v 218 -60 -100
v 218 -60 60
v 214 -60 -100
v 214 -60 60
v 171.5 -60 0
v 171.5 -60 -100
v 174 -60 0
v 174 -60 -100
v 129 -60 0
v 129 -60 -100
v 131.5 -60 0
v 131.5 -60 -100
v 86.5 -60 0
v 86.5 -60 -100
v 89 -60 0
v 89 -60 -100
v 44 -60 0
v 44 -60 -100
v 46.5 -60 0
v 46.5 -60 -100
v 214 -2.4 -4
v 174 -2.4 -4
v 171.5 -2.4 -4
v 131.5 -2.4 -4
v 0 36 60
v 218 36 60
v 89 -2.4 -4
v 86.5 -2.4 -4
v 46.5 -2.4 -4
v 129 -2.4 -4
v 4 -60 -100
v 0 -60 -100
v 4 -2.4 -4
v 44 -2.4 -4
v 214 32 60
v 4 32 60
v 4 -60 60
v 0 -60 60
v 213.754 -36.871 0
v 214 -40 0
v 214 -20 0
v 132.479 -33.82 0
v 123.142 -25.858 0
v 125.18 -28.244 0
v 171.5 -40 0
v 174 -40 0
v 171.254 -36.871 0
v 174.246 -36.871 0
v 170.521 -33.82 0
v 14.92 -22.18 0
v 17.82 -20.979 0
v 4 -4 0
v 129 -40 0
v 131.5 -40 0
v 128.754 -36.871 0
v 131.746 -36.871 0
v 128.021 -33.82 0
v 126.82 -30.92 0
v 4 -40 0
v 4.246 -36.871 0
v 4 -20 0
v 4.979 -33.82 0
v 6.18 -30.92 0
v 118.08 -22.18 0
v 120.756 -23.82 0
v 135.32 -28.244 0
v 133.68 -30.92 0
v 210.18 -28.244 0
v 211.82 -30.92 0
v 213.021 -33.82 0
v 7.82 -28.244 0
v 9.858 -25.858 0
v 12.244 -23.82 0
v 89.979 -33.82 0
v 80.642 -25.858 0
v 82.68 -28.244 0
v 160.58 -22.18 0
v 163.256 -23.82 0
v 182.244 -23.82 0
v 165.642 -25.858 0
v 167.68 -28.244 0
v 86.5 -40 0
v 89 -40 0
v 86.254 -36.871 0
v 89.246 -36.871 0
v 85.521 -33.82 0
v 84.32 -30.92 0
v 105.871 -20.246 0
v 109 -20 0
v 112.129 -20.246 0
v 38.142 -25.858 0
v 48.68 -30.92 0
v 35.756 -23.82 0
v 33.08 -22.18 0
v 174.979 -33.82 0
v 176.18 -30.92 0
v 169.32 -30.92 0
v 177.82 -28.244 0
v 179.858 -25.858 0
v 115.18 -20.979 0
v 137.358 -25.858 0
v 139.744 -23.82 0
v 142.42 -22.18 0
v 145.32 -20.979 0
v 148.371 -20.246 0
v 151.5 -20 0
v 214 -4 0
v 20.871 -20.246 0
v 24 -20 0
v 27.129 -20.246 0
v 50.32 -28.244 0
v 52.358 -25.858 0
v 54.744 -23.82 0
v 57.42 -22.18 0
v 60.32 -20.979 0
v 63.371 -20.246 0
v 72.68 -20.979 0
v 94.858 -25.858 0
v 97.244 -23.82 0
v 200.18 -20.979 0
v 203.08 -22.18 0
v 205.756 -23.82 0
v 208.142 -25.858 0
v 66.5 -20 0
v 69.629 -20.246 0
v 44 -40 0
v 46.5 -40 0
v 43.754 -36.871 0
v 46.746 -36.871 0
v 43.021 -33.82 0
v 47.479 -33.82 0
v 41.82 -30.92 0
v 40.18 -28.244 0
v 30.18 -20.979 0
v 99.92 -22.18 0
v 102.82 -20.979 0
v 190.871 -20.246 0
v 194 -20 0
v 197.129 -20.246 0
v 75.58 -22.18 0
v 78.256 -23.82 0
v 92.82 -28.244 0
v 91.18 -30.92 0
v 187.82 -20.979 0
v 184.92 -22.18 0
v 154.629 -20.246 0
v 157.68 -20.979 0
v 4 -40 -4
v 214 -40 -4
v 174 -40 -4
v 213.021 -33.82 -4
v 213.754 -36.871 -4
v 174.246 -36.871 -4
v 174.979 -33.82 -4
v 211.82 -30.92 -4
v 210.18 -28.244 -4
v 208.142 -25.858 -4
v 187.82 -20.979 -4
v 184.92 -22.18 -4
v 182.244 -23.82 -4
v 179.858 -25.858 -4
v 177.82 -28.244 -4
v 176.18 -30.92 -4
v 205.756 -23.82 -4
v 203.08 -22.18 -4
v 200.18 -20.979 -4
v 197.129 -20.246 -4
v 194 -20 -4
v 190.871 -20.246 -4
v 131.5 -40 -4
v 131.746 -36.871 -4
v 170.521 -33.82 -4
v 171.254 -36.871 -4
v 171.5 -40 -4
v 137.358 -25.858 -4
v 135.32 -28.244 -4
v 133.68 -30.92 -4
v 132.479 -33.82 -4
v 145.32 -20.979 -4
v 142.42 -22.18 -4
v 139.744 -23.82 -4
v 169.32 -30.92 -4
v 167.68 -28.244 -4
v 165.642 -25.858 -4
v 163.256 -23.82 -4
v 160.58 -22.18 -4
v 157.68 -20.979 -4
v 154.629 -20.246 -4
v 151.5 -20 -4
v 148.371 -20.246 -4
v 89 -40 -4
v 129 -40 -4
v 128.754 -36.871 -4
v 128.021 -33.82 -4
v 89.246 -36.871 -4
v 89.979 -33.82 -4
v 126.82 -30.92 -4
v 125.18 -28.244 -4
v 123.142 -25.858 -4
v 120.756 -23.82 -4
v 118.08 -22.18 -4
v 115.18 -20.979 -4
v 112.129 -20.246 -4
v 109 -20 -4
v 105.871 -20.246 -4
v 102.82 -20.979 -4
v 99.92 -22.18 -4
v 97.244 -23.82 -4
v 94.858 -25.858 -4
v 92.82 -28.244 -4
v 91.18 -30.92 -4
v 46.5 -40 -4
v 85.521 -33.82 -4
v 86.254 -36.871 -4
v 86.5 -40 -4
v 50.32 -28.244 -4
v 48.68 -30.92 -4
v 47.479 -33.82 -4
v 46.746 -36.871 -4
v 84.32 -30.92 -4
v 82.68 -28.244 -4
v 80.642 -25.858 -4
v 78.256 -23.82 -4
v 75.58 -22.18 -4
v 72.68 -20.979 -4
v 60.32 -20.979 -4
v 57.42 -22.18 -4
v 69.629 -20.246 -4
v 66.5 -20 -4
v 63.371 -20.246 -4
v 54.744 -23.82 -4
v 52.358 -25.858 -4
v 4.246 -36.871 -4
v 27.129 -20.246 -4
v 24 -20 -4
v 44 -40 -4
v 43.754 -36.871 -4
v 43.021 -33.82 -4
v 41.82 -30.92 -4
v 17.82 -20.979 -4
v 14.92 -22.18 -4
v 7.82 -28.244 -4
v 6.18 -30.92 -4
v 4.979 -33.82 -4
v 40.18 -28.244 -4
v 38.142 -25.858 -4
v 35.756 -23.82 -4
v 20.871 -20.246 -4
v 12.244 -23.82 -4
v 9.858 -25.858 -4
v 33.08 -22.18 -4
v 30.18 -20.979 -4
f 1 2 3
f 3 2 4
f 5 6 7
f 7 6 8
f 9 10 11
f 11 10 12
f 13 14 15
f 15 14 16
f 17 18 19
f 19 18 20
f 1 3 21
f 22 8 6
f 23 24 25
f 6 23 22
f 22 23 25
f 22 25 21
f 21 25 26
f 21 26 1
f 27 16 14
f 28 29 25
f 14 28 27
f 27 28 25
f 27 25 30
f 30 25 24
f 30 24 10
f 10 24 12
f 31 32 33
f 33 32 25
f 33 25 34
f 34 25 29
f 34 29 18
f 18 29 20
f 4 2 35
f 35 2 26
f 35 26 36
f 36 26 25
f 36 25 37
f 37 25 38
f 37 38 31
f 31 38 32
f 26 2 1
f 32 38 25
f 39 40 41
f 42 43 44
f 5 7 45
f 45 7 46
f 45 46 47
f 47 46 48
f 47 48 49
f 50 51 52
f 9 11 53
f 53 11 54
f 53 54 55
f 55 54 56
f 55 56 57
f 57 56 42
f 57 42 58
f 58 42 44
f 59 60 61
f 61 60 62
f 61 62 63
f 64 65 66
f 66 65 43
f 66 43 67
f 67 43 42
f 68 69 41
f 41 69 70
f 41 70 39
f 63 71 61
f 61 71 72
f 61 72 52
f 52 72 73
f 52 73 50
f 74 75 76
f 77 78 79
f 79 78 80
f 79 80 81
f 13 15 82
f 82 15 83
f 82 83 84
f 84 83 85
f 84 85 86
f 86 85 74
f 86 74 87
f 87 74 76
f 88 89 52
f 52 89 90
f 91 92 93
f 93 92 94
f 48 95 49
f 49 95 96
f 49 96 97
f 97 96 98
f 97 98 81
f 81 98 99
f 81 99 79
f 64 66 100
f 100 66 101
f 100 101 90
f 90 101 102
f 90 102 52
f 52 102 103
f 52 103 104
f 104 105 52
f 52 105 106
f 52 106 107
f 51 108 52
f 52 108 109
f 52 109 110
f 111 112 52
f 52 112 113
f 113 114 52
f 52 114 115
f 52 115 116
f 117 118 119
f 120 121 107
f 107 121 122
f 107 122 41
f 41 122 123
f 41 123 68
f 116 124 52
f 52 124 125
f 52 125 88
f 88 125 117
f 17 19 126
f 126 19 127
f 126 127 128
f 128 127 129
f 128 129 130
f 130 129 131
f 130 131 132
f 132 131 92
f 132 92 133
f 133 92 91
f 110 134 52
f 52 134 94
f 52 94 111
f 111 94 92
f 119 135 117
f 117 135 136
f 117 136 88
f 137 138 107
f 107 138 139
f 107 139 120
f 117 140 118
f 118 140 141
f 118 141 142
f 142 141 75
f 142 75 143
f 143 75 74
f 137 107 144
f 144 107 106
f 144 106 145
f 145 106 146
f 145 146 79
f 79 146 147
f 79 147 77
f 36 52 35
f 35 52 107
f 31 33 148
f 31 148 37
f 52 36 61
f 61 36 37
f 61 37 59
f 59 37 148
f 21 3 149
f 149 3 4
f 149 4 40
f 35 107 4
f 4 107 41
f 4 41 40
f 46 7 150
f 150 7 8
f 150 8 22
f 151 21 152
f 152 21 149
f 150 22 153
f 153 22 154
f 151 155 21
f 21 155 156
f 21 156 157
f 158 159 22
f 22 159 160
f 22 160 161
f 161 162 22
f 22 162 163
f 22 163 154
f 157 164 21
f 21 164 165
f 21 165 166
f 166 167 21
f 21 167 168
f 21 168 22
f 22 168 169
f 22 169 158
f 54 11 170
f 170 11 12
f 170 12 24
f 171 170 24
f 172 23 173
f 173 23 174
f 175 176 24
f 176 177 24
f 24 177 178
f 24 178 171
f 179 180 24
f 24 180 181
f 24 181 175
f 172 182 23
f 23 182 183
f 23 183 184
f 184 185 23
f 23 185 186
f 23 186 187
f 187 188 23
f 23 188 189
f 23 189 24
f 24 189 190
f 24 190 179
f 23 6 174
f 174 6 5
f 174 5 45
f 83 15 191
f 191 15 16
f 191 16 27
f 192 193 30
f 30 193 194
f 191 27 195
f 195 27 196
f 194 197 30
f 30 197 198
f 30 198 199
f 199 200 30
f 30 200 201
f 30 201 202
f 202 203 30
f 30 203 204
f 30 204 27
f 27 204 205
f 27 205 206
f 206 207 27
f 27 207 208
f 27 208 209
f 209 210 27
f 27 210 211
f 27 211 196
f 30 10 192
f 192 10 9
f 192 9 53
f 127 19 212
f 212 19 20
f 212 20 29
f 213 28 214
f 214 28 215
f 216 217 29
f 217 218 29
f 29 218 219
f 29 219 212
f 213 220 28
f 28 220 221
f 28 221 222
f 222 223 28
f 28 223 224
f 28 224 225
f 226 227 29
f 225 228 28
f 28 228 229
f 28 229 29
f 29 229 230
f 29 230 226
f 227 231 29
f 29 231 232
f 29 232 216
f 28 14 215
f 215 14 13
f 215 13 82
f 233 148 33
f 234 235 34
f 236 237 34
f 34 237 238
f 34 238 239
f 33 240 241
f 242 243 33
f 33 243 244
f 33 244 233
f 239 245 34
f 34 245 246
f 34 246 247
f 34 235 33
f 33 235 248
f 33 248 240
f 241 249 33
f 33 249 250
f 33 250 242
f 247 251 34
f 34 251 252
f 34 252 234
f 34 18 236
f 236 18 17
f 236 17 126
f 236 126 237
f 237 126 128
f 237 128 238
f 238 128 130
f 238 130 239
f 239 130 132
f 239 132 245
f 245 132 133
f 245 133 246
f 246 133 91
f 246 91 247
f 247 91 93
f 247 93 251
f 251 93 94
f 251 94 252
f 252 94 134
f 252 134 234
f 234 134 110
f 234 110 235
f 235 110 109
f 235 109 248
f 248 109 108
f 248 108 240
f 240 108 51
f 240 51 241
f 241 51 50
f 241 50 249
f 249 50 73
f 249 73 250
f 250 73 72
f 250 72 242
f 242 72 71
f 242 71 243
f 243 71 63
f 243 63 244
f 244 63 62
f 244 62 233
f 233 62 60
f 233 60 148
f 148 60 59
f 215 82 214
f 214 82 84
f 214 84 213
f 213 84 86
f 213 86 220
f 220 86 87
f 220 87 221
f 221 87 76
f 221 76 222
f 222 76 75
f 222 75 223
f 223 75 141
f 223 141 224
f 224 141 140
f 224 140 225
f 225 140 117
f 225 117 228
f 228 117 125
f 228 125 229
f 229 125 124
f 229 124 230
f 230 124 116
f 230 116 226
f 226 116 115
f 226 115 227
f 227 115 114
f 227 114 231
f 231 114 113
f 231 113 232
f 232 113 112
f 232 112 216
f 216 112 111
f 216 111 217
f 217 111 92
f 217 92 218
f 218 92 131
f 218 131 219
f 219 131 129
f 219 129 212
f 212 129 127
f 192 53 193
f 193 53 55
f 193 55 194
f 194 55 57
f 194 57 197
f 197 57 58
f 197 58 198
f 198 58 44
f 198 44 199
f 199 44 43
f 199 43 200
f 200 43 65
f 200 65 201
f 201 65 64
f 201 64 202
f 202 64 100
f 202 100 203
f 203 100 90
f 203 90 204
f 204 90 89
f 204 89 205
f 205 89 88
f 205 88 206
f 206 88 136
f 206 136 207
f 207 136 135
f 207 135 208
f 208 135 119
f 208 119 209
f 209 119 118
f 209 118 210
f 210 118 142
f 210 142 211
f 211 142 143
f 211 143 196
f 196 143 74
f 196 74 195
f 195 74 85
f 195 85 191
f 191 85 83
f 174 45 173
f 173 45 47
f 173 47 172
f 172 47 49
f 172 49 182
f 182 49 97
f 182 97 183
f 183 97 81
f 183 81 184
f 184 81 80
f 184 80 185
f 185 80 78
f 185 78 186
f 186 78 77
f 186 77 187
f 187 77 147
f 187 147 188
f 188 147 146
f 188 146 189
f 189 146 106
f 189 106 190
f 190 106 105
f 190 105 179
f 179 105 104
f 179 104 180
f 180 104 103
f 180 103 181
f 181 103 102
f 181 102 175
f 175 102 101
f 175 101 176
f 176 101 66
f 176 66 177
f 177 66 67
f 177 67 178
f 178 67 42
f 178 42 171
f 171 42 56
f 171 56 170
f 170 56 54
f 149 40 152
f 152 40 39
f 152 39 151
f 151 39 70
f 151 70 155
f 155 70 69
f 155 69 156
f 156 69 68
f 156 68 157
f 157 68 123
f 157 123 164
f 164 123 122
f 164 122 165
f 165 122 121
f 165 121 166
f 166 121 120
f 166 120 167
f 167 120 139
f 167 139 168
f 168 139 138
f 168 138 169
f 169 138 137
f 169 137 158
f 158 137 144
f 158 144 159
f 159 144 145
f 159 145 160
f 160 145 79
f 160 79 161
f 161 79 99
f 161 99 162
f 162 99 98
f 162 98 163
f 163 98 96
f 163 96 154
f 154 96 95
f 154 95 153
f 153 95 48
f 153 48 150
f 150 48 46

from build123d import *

# Parameters (mm, degrees)
SALIENTE_EXTRUIR1_DEPTH = 218
CROQUIS4_W              = 40.00000000000003
CROQUIS4_H              = 96.00000000000001
CORTAR_EXTRUIR1_DEPTH   = 60
CORTAR_EXTRUIR2_DEPTH   = 4
REDONDEO1_R             = 20


with BuildPart() as part:
    # Croquis2 → Saliente-Extruir1 (new body)
    with BuildSketch(Plane(origin=(0, 0, 0), x_dir=(0, 0, -1), z_dir=(1, 0, 0))):
        Polygon((-60.000000000000014, 35.99999999999998), (-59.99999999999997, -60), (100, -59.99999999999999), align=None)
    extrude(amount=SALIENTE_EXTRUIR1_DEPTH)

    # Croquis3 → Cortar-Recubrir1 section 0
    with BuildSketch(Plane.XY.offset(60)):
        with BuildLine():
            Line((4, 32), (214, 32))
            Line((214, 32), (214, -59.99999999999997))
            Line((214, -59.99999999999997), (4.0000000000000115, -59.99999999999997))
            Line((4.0000000000000115, -59.99999999999997), (4, 32))
        make_face()
    # Croquis3D3 → Cortar-Recubrir1 section 1
    with BuildSketch(Plane(origin=(4, -3.9999999999999964, 0), x_dir=(0.9662349396012463, -0.25766265056033233, 0), z_dir=(0, 0, 1))):
        with BuildLine():
            Line((0, 0), (202.9093373162617, 54.10915661766981))
            Line((202.9093373162617, 54.10915661766981), (217.33844574764032, 0))
            Line((217.33844574764032, 0), (14.42910843137861, -54.1091566176698))
            Line((14.42910843137861, -54.1091566176698), (0, 0))
        make_face()
    loft(mode=Mode.SUBTRACT)

    # Croquis4 → Cortar-Extruir1 (cut)
    with BuildSketch(Plane.XZ.offset(60)):
        Polygon((3.999999999999988, -4), (43.99999999999999, -4), (44.00000000000001, -100), (4, -100), align=None)
        Polygon((46.499999999999986, -4), (86.49999999999999, -4), (86.5, -100), (46.5, -100), align=None)
        Polygon((88.99999999999999, -3.9999999999999973), (128.99999999999997, -3.9999999999999973), (128.99999999999997, -100), (89, -100), align=None)
        with Locations((151.5, -52.00000000000001)):
            Rectangle(CROQUIS4_W, CROQUIS4_H)
        with Locations((194, -52.00000000000001)):
            Rectangle(CROQUIS4_W, CROQUIS4_H)
    extrude(amount=-CORTAR_EXTRUIR1_DEPTH, mode=Mode.SUBTRACT)

    # Croquis5 → Cortar-Extruir2 (cut)
    with BuildSketch(Plane(origin=(0, 1.7e-16, -4), x_dir=(-1, 0, 0), z_dir=(0, 4e-17, -1))):
        Polygon((-194, -60), (-174.00000000000003, -60.00000000000001), (-174.00000000000003, -19.99999999999999), (-214, -19.999999999999996), (-214, -60), align=None)
        Polygon((-151.49999999999997, -60), (-131.49999999999997, -60), (-131.49999999999997, -19.99999999999999), (-171.5, -19.999999999999996), (-171.49999999999997, -60), align=None)
        Polygon((-108.99999999999999, -60), (-88.99999999999999, -60), (-88.99999999999999, -19.999999999999996), (-128.99999999999997, -20), (-128.99999999999997, -60), align=None)
        Polygon((-66.49999999999997, -60), (-46.49999999999997, -60), (-46.49999999999997, -19.999999999999996), (-86.5, -19.999999999999996), (-86.49999999999999, -60), align=None)
        Polygon((-23.99999999999999, -60), (-3.99999999999999, -60), (-3.99999999999999, -19.99999999999999), (-43.99999999999999, -19.999999999999996), (-43.99999999999999, -60), align=None)
    extrude(amount=-CORTAR_EXTRUIR2_DEPTH, mode=Mode.SUBTRACT)

    # Redondeo1
    redondeo1_edges = [part.edges().sort_by_distance(p)[0] for p in [
        (3.99999999999999, -19.99999999999999, -2.000000000000001),
        (43.99999999999999, -19.999999999999996, -2.000000000000001),
        (46.49999999999997, -19.999999999999996, -2.000000000000001),
        (86.5, -19.999999999999996, -2.000000000000001),
        (88.99999999999999, -19.999999999999996, -2.000000000000001),
        (128.99999999999997, -20, -2.000000000000001),
        (131.49999999999997, -19.99999999999999, -2.000000000000001),
        (171.5, -19.999999999999996, -2.000000000000001),
        (174.00000000000003, -19.99999999999999, -2.000000000000001),
        (214, -19.999999999999996, -2.000000000000001),
    ]]
    fillet(redondeo1_edges, radius=REDONDEO1_R - 0.0001)  # a hair under: the kernel refuses the full size


solid = part.part
